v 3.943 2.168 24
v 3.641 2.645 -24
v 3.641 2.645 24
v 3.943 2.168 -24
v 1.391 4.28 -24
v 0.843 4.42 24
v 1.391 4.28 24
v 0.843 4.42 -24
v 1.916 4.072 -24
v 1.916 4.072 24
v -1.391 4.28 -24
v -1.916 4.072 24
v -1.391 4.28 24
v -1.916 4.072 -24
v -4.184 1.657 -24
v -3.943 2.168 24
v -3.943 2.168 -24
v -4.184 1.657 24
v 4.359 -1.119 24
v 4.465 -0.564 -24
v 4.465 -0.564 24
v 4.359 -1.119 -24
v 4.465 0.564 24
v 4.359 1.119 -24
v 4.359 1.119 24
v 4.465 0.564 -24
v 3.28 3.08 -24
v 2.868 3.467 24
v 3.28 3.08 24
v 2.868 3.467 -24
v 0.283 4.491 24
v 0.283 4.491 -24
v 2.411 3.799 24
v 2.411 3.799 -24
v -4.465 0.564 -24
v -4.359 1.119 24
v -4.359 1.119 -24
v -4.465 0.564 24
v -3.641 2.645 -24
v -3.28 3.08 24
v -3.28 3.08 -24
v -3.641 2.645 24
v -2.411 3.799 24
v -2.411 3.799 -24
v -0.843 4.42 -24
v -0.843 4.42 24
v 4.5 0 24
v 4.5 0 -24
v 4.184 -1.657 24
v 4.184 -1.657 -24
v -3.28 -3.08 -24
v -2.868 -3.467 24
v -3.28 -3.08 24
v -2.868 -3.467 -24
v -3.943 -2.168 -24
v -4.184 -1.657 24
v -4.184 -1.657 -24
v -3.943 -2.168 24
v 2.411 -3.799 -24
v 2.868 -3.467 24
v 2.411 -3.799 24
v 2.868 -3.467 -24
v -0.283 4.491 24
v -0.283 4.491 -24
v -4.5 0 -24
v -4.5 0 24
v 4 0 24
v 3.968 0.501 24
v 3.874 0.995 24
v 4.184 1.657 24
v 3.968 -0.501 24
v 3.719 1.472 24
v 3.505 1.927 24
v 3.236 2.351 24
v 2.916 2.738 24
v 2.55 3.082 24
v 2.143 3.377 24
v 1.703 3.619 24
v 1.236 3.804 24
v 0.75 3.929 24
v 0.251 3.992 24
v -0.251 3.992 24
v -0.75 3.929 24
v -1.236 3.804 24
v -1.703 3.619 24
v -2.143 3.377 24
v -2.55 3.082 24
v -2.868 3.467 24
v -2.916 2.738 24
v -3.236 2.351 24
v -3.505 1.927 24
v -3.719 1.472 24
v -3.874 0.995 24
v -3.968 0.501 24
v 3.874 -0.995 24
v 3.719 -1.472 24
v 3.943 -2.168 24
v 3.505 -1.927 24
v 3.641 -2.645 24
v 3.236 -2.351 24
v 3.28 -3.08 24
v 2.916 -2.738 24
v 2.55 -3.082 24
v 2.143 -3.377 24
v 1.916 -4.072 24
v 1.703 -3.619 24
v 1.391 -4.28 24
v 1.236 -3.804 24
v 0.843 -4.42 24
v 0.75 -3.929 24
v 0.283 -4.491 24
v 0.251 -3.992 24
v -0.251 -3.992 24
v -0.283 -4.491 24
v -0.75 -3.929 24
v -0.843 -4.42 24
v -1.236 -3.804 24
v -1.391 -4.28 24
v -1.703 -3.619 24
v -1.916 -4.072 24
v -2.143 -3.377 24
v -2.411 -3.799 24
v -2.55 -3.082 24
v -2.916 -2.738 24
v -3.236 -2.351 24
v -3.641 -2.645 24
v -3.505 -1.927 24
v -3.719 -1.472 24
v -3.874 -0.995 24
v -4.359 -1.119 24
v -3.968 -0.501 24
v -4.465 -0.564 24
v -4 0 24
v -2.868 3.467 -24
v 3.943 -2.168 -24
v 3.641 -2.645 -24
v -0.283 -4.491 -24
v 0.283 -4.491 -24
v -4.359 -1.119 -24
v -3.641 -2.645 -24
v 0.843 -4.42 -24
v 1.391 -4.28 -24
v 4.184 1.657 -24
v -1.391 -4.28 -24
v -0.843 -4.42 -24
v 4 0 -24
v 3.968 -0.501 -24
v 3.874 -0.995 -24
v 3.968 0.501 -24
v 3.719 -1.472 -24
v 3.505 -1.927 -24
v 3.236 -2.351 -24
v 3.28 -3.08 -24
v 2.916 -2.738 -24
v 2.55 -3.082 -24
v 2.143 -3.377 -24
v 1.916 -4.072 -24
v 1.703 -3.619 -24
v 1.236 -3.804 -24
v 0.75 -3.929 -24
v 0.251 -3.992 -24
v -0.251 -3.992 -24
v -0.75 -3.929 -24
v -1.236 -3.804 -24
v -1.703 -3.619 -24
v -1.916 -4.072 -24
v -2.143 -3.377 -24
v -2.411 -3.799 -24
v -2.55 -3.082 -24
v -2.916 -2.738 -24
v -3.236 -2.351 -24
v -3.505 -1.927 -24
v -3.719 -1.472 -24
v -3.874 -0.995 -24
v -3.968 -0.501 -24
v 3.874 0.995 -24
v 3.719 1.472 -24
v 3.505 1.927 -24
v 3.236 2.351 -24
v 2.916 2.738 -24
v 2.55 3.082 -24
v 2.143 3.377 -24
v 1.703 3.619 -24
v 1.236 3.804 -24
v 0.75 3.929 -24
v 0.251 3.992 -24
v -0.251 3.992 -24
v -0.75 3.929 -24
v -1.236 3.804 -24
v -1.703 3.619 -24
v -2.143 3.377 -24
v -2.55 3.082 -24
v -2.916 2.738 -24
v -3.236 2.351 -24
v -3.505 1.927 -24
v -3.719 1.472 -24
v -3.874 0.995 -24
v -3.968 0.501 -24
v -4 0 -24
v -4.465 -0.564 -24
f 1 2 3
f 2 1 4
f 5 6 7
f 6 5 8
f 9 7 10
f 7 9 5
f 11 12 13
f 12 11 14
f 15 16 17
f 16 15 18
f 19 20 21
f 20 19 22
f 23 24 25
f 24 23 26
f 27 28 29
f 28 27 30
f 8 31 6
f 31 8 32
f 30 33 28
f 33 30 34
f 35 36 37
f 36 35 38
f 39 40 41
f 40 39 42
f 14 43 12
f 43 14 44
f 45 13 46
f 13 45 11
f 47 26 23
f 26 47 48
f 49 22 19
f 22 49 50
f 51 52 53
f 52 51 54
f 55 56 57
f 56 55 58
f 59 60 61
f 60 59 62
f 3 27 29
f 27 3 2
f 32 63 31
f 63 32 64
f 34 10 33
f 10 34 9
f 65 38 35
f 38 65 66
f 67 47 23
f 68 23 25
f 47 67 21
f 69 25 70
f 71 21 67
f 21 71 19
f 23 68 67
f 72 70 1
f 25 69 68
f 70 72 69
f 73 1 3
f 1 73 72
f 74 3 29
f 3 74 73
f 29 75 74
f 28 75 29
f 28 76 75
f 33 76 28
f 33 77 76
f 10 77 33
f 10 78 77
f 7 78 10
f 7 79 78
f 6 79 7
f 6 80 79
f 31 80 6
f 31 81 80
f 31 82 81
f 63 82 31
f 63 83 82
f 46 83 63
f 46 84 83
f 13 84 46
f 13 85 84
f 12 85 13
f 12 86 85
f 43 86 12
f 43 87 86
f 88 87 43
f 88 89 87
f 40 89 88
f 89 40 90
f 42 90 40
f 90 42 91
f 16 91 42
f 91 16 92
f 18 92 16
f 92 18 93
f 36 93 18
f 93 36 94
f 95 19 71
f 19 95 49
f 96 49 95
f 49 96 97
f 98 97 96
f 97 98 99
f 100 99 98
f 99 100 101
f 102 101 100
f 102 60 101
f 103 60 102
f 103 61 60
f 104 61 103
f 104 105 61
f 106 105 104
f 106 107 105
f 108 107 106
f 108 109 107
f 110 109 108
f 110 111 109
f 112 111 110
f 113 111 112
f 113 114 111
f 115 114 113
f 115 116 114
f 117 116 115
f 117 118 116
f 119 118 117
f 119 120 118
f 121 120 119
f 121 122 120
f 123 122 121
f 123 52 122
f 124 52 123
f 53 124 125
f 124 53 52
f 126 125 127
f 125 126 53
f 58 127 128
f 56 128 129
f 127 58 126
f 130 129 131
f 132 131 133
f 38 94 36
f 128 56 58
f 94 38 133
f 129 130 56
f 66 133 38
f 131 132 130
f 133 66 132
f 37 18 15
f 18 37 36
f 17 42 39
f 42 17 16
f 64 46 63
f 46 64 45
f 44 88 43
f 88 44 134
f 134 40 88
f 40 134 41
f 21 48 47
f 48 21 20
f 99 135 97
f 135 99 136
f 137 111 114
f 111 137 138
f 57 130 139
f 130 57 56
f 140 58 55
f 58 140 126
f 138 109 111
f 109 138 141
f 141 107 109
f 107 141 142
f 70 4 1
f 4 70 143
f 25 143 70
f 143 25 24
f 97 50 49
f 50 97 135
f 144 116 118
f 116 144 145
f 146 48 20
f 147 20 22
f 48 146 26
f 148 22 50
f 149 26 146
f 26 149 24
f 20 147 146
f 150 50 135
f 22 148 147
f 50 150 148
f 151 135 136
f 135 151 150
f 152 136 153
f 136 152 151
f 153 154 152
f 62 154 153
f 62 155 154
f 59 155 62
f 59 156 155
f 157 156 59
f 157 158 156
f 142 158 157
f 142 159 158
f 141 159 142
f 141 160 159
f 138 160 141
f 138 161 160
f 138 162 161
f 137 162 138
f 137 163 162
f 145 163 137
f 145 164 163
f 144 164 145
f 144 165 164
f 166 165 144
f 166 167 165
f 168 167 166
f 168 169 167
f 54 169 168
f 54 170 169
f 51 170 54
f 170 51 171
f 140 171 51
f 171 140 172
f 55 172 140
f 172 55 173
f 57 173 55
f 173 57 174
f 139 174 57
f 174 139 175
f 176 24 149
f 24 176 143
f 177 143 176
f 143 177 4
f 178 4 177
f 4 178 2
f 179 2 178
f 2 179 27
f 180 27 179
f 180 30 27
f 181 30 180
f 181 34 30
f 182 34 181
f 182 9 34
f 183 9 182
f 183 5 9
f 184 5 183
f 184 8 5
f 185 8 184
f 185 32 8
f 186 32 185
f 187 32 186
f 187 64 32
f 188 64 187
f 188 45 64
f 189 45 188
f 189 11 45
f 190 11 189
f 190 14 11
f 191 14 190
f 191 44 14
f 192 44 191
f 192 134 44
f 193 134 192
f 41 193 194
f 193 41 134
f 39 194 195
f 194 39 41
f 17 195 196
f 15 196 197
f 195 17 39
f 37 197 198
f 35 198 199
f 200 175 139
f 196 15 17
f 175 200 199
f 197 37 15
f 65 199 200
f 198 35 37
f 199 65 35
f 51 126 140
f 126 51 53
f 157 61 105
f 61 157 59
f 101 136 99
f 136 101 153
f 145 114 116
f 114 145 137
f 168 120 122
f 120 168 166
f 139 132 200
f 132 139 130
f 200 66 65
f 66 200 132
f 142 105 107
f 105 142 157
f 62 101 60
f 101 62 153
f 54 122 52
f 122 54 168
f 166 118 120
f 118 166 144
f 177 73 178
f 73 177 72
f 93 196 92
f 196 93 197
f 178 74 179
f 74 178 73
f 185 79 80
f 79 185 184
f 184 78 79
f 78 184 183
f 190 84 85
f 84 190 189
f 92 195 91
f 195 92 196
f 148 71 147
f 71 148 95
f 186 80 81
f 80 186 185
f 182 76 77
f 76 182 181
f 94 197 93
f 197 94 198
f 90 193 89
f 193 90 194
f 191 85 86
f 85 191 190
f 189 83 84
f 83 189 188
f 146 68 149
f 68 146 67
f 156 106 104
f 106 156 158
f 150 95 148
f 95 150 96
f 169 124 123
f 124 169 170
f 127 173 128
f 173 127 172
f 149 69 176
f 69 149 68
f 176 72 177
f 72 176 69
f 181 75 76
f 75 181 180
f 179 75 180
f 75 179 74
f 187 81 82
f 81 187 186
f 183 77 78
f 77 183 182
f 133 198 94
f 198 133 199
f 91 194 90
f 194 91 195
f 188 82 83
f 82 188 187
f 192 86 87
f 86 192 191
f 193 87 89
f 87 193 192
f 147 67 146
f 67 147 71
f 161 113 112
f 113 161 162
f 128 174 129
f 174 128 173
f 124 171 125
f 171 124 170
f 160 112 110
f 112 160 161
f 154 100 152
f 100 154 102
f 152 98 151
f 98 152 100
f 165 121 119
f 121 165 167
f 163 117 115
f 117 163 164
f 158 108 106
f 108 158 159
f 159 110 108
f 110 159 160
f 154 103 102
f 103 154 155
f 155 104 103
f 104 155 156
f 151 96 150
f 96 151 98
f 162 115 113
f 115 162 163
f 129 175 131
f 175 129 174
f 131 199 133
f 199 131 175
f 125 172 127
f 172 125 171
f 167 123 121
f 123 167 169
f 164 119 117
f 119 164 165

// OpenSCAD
$fn = 50;


difference() {
	union() {
		translate(v = [0, 0, -24.0000000000]) {
			cylinder(h = 48, r = 4.5000000000);
		}
	}
	union() {
		translate(v = [0, 0, -100.0000000000]) {
			cylinder(h = 200, r = 4);
		}
	}
}
